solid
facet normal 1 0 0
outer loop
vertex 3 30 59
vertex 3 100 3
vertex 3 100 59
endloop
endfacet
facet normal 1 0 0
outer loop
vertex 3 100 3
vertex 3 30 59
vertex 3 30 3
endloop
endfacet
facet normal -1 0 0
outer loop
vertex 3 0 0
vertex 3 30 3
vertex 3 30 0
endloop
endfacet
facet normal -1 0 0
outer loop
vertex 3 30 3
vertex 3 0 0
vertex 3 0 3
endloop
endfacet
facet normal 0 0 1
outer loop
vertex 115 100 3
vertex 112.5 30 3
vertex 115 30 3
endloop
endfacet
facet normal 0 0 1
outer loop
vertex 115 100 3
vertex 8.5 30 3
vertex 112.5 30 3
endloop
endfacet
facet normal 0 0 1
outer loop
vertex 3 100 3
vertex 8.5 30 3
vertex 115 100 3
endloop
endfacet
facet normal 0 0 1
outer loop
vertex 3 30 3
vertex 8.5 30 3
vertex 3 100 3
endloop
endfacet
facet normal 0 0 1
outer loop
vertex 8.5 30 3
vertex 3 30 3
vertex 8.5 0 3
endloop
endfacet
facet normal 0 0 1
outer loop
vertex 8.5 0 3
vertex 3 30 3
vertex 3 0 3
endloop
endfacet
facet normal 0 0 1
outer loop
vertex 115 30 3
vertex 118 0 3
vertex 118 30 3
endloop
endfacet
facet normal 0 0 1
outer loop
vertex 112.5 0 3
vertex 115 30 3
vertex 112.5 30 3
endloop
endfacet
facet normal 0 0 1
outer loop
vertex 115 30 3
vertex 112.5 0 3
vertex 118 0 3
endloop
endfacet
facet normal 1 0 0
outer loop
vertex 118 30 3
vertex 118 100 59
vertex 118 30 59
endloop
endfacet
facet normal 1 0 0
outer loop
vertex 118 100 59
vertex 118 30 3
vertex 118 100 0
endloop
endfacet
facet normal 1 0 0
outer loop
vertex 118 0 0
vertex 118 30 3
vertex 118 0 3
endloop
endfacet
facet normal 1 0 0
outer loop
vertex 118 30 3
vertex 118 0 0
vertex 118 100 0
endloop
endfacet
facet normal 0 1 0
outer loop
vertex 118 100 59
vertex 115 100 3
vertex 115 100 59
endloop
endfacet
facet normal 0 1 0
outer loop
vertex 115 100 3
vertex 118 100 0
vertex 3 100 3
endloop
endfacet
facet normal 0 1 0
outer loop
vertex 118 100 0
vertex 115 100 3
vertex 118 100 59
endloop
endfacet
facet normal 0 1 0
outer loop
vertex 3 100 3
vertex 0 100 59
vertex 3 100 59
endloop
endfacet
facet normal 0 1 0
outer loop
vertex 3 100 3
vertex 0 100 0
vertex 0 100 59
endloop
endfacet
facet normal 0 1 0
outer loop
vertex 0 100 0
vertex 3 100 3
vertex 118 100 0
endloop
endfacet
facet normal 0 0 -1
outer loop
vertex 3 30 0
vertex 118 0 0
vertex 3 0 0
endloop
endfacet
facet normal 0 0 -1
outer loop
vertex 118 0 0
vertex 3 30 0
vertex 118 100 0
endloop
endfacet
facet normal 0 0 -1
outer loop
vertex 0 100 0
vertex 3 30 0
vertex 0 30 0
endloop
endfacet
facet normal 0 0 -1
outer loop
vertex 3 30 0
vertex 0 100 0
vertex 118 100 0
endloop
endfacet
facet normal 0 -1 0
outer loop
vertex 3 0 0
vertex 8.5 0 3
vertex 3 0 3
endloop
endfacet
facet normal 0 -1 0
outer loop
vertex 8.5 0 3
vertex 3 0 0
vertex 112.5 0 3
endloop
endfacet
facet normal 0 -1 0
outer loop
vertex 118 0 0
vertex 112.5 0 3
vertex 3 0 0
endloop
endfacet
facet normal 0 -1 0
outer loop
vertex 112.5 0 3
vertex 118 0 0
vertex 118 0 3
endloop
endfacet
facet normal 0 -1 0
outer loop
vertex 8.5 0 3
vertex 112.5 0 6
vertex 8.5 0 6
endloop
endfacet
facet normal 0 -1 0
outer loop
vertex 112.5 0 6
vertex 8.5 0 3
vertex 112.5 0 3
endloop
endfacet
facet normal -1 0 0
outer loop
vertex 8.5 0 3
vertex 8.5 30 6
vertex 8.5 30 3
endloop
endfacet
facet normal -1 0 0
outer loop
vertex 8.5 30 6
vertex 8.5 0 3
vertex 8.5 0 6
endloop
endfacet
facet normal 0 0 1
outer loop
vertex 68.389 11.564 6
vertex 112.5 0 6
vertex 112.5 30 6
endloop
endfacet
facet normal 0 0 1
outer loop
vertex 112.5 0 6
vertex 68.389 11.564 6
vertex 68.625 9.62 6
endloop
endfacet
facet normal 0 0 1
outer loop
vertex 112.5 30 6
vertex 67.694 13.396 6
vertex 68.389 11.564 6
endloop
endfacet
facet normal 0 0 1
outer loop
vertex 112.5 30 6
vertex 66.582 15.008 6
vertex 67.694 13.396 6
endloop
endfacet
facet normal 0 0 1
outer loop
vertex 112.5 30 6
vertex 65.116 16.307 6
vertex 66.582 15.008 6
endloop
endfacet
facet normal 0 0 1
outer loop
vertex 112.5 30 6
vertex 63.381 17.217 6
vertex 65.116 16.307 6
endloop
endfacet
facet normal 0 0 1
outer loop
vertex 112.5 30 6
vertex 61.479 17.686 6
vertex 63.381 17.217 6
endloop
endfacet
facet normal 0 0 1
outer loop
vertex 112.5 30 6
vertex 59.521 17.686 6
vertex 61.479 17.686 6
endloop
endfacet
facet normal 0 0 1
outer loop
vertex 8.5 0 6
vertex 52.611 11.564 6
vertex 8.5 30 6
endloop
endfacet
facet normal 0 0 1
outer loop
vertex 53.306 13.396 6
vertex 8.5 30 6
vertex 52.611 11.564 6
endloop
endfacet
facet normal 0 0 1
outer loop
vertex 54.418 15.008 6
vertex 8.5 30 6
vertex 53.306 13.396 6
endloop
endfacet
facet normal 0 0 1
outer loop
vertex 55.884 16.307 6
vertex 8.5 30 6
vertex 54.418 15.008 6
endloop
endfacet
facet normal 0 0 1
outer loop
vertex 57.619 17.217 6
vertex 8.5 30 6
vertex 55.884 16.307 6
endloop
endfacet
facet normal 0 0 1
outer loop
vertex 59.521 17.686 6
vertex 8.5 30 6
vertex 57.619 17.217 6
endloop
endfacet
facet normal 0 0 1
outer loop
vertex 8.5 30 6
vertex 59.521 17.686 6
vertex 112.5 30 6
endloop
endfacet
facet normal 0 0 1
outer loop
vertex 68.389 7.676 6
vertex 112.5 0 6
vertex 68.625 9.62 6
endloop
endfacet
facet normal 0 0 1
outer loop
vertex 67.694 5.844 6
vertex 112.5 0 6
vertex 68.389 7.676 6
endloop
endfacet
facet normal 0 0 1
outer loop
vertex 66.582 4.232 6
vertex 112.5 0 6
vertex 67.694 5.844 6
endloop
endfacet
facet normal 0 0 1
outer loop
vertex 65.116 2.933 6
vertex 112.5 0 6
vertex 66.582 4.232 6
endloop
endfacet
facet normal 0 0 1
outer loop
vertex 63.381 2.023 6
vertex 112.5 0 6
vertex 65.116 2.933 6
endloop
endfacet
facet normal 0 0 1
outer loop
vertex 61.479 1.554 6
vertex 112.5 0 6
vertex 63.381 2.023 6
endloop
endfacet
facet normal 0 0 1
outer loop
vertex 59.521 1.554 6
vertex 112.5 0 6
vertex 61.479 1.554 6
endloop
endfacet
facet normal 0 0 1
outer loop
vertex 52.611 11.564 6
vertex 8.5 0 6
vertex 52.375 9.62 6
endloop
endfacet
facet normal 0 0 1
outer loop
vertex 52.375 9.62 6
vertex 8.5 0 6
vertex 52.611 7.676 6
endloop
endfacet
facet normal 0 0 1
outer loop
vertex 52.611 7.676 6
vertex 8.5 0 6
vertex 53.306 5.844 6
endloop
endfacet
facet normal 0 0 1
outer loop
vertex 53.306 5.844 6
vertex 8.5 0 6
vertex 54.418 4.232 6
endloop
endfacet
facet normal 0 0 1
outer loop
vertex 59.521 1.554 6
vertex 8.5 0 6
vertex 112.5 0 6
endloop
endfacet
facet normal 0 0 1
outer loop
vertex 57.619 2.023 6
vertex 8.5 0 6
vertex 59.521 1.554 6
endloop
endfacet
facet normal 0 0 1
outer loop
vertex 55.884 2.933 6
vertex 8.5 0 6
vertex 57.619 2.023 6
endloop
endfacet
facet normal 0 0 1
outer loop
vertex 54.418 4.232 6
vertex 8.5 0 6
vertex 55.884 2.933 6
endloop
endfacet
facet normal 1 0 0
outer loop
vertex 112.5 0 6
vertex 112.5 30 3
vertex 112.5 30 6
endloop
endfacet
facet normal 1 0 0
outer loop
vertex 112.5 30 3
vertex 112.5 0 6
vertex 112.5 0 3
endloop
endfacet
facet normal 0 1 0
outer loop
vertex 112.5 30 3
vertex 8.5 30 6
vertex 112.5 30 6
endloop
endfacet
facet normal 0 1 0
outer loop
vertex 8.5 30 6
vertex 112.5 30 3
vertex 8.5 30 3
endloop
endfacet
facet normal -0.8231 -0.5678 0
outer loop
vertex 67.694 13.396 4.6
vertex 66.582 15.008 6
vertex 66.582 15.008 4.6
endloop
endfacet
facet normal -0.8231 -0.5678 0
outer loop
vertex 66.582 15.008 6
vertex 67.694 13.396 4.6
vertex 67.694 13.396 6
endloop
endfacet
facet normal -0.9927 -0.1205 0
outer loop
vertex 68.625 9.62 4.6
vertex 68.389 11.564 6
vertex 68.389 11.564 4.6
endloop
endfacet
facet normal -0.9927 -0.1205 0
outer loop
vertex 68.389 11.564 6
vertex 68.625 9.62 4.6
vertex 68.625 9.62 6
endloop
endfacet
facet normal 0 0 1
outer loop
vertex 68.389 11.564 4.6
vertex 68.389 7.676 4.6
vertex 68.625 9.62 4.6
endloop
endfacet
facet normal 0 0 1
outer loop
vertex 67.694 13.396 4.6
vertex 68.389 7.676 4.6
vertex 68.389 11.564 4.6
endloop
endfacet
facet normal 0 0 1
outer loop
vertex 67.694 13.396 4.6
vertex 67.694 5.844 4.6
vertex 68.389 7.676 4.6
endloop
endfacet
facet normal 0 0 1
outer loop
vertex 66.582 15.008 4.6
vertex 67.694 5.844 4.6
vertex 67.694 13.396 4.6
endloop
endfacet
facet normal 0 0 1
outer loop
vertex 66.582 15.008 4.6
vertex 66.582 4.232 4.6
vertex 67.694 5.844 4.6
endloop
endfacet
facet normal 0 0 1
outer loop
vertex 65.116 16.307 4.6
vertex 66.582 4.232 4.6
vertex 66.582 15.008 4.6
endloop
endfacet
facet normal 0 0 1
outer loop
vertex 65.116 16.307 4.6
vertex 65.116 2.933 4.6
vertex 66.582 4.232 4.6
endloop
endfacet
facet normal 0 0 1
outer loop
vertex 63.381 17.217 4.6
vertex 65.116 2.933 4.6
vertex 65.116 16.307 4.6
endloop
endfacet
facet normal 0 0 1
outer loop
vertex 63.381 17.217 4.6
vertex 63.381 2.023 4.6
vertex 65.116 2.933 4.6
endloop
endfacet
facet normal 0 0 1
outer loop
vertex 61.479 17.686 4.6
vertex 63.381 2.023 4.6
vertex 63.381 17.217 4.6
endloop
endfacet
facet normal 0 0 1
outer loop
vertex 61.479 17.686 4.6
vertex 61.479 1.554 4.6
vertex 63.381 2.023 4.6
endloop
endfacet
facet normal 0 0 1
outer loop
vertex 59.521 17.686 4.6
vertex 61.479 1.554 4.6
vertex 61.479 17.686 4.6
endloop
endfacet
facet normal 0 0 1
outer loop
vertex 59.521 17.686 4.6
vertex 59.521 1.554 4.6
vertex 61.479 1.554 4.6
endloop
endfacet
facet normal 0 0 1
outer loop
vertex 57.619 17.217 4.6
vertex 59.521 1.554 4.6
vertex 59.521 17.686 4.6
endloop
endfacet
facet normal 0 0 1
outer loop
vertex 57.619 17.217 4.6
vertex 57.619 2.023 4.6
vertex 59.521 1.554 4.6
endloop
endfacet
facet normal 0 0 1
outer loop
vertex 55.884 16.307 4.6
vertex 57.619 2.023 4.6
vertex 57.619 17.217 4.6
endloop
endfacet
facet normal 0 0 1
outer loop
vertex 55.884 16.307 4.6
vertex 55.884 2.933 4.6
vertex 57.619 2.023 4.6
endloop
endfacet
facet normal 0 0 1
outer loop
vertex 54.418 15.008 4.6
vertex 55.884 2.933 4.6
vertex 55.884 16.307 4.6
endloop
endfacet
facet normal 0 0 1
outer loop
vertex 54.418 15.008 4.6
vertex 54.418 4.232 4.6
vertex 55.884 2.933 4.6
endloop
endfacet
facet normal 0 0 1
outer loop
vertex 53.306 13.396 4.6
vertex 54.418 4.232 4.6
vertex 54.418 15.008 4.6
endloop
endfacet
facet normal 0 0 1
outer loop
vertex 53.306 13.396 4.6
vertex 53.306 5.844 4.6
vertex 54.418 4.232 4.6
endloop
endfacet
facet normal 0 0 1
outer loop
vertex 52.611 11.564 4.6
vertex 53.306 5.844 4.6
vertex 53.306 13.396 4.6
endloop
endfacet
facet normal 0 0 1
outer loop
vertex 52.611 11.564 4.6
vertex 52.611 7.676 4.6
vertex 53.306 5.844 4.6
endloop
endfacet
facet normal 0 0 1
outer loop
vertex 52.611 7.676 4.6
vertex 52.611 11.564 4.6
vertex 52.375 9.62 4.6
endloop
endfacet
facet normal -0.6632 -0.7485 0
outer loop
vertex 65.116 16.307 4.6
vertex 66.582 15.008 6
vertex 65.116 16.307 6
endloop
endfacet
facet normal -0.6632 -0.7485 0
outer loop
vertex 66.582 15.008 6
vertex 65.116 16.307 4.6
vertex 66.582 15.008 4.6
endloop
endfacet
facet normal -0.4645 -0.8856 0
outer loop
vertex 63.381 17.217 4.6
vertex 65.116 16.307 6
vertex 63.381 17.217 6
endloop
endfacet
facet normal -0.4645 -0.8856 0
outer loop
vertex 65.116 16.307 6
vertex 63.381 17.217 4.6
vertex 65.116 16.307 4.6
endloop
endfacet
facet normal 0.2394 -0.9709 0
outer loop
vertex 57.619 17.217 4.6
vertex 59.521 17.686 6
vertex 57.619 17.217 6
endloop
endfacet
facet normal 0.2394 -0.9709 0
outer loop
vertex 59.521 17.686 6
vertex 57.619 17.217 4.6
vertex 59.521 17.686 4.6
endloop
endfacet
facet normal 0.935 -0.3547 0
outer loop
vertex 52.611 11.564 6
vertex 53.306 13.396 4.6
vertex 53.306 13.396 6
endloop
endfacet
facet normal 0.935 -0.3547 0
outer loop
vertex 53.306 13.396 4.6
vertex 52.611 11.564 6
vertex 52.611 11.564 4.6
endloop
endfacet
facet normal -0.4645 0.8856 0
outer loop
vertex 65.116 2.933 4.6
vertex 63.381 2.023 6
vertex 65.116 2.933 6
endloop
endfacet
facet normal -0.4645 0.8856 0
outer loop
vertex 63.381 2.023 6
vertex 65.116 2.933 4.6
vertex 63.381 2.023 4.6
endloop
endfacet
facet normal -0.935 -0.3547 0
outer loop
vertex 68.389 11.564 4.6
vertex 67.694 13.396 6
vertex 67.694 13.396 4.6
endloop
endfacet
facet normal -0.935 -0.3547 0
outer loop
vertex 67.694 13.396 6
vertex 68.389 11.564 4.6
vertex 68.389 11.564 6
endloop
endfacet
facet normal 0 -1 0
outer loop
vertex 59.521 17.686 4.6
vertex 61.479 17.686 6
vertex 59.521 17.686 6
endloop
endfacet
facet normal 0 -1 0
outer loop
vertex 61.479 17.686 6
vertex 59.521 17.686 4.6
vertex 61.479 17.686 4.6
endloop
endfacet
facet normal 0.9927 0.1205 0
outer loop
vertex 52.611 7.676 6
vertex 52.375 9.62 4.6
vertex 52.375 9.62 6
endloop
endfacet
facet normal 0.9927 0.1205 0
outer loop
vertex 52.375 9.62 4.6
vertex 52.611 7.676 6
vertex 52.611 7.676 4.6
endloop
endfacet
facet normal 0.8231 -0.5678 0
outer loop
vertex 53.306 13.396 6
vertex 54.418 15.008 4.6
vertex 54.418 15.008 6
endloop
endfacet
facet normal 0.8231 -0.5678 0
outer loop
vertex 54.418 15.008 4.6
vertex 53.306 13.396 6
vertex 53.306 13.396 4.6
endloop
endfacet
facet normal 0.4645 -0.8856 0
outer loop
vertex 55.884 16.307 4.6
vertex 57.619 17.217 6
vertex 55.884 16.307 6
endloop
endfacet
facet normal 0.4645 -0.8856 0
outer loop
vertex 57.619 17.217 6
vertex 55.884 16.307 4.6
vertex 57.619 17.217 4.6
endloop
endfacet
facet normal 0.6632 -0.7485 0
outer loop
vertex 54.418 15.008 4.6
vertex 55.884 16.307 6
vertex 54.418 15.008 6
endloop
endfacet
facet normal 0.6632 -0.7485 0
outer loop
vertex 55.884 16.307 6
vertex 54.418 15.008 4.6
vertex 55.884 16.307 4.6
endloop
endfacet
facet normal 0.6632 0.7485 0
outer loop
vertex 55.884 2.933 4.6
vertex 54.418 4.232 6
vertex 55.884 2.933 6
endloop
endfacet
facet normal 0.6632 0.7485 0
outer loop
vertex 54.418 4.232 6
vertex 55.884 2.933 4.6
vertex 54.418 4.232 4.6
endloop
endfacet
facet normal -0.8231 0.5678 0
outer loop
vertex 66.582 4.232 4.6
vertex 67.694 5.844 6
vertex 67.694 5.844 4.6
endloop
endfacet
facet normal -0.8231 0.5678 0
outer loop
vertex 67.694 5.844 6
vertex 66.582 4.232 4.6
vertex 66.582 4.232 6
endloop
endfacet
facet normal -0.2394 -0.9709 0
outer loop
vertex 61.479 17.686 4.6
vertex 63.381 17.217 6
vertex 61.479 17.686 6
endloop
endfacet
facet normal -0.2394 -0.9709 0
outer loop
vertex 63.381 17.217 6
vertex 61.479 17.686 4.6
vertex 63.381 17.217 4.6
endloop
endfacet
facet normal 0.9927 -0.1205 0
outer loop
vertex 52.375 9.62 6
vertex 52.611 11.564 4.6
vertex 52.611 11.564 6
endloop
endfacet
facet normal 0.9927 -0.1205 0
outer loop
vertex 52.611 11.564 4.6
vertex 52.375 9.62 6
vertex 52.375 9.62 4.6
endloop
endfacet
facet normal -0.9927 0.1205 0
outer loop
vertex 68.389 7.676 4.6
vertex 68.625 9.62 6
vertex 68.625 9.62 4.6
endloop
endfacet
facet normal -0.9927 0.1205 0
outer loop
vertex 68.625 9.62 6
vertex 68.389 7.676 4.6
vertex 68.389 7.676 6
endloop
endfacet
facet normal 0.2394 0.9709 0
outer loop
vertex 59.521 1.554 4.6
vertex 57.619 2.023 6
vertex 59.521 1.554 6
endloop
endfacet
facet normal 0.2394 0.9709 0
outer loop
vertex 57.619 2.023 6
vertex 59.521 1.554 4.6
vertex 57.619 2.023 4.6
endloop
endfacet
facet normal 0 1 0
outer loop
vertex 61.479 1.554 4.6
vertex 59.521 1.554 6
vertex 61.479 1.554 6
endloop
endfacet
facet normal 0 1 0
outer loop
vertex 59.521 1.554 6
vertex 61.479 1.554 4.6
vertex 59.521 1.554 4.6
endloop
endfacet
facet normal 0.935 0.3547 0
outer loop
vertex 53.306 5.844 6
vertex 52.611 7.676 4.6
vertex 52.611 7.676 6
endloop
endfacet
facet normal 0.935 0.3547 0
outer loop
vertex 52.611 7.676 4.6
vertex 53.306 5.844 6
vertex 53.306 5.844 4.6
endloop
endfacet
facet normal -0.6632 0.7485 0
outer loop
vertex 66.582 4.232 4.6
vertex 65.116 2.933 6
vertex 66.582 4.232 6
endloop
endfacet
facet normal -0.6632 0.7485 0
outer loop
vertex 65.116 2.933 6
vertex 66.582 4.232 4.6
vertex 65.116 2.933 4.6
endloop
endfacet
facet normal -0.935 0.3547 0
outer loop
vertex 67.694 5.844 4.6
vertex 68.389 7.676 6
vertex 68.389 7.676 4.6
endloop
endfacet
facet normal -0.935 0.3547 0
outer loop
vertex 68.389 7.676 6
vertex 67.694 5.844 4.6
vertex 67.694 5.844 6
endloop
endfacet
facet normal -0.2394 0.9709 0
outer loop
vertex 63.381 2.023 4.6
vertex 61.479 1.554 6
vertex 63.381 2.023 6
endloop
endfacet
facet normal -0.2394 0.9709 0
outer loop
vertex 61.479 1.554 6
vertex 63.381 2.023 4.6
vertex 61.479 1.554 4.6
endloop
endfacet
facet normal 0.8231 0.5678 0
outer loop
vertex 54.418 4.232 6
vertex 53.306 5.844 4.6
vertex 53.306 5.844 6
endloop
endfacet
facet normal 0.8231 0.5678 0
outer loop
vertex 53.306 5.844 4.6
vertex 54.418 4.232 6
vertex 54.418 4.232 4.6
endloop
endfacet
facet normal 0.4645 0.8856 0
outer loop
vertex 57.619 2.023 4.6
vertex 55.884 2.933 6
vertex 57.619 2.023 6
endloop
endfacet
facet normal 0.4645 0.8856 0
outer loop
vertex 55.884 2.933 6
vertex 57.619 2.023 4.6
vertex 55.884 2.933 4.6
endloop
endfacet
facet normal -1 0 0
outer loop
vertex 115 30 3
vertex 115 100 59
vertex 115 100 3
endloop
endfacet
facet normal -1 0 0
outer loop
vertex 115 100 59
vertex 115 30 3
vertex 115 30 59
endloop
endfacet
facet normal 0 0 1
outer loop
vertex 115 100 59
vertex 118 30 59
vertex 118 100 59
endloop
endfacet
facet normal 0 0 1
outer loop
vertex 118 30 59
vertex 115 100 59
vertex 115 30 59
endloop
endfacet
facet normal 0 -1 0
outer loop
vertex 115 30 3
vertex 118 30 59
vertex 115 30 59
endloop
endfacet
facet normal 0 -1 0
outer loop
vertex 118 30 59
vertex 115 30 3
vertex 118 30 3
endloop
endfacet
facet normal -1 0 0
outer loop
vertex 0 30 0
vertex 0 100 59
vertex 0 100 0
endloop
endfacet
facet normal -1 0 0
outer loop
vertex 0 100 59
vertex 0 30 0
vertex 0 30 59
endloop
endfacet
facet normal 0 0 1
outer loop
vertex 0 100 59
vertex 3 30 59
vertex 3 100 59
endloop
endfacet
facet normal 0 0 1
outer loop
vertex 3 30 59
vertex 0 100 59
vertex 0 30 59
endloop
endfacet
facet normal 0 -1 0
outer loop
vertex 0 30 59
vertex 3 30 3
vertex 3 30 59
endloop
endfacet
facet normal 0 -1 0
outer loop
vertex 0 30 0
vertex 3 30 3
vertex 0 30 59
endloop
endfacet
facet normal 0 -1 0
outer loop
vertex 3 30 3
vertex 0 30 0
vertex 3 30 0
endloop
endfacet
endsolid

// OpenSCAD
// file: GizmosMarbleHiddenTrackCore.scad
//TODO: Get correct length
length = 115;
diameter = 18;
wallThickness = 3;
angle = 5;
floorThickness = 10;
heightStepDown = .2;
offset = diameter + 10;
height = 40.42 + heightStepDown + offset;
magnetHeightOffset = 1;
magnetBaseInnerDiameter = 15.4;
frontMagnetBaseInnerDiameter = magnetBaseInnerDiameter + .3;
magnetHeight = 4.0;
width = diameter + wallThickness + 85;
centerOfConnectorX = 50;
centerOfConnectorY = 10;
sideCenterOfConnectorY = height - 30;
centerOfBackConnectorX = width/2;
echo(centerOfBackConnectorX);
lidHeight = 10;
backstopHeight = 10;

module Track(useLeftConnector, useRightConnector) {
//    union() {
    difference(){

        cube([length, width, height]);
        
        translate([wallThickness, width/2 - diameter/2 - 5, height - offset])
            rotate([0, angle, 0])
                cube([length + wallThickness, diameter + 10, height]);
         
//     translate([wallThickness, wallThickness, height - (backstopHeight + lidHeight + 5)])
//            cube([length + wallThickness, width - (wallThickness *2), 5]);       
        translate([wallThickness, width/2, height - offset + 1 ])
            rotate([90 + angle, 0, 90])
                cylinder(length + 3, d=diameter);
        if(useLeftConnector)
            translate([centerOfConnectorX, magnetHeight, sideCenterOfConnectorY])
                rotate([90, 90, 0])
                    cylinder(magnetHeight, d=magnetBaseInnerDiameter);
        if(useRightConnector)
        translate([centerOfConnectorX, width, sideCenterOfConnectorY])
            rotate([90, 90, 0])
                cylinder(magnetHeight, d=magnetBaseInnerDiameter);
        
    //    translate([0, centerOfBackConnectorX, centerOfConnectorY])
    //        rotate([90, 0, 90])
    //            cylinder(magnetHeight, d=magnetBaseInnerDiameter);
        
        translate([length - magnetHeight, centerOfBackConnectorX, centerOfConnectorY])
            rotate([90, 0, 90])
                cylinder(magnetHeight, d=frontMagnetBaseInnerDiameter);


        translate([wallThickness,wallThickness,height - (backstopHeight + lidHeight)])
            cube([length,width - wallThickness * 2,lidHeight]);
    }

    //translate([length, 0, 0])
    //    import("C:/Code/Git/3DPrint/PotionExplosionMarbleTrack.stl");

}
//}
// main file
include<GizmosMarbleHiddenTrackCore.scad>
washerDiameter = 16.25;
washerHeight = 1.4;
union() {
translate([wallThickness, 0, 0])
union() {

    difference() {
        union() {
            cube([length, 100, wallThickness]);
            translate([5.5, 0, wallThickness])
                cube([length - 5 * 2 - 1, 30, wallThickness]);
            
        }
        translate([length/2, sideCenterOfConnectorY - 30 + 1, wallThickness * 2 - washerHeight])
            cylinder(washerHeight, d=washerDiameter);
    }
    
    translate([length - wallThickness, (30), 0])
        cube([wallThickness, 100 - 30, width/2 + wallThickness * 2]);
}
translate([0, 30, 0])
        cube([wallThickness, 100 - 30, width/2 + wallThickness * 2]);
}
